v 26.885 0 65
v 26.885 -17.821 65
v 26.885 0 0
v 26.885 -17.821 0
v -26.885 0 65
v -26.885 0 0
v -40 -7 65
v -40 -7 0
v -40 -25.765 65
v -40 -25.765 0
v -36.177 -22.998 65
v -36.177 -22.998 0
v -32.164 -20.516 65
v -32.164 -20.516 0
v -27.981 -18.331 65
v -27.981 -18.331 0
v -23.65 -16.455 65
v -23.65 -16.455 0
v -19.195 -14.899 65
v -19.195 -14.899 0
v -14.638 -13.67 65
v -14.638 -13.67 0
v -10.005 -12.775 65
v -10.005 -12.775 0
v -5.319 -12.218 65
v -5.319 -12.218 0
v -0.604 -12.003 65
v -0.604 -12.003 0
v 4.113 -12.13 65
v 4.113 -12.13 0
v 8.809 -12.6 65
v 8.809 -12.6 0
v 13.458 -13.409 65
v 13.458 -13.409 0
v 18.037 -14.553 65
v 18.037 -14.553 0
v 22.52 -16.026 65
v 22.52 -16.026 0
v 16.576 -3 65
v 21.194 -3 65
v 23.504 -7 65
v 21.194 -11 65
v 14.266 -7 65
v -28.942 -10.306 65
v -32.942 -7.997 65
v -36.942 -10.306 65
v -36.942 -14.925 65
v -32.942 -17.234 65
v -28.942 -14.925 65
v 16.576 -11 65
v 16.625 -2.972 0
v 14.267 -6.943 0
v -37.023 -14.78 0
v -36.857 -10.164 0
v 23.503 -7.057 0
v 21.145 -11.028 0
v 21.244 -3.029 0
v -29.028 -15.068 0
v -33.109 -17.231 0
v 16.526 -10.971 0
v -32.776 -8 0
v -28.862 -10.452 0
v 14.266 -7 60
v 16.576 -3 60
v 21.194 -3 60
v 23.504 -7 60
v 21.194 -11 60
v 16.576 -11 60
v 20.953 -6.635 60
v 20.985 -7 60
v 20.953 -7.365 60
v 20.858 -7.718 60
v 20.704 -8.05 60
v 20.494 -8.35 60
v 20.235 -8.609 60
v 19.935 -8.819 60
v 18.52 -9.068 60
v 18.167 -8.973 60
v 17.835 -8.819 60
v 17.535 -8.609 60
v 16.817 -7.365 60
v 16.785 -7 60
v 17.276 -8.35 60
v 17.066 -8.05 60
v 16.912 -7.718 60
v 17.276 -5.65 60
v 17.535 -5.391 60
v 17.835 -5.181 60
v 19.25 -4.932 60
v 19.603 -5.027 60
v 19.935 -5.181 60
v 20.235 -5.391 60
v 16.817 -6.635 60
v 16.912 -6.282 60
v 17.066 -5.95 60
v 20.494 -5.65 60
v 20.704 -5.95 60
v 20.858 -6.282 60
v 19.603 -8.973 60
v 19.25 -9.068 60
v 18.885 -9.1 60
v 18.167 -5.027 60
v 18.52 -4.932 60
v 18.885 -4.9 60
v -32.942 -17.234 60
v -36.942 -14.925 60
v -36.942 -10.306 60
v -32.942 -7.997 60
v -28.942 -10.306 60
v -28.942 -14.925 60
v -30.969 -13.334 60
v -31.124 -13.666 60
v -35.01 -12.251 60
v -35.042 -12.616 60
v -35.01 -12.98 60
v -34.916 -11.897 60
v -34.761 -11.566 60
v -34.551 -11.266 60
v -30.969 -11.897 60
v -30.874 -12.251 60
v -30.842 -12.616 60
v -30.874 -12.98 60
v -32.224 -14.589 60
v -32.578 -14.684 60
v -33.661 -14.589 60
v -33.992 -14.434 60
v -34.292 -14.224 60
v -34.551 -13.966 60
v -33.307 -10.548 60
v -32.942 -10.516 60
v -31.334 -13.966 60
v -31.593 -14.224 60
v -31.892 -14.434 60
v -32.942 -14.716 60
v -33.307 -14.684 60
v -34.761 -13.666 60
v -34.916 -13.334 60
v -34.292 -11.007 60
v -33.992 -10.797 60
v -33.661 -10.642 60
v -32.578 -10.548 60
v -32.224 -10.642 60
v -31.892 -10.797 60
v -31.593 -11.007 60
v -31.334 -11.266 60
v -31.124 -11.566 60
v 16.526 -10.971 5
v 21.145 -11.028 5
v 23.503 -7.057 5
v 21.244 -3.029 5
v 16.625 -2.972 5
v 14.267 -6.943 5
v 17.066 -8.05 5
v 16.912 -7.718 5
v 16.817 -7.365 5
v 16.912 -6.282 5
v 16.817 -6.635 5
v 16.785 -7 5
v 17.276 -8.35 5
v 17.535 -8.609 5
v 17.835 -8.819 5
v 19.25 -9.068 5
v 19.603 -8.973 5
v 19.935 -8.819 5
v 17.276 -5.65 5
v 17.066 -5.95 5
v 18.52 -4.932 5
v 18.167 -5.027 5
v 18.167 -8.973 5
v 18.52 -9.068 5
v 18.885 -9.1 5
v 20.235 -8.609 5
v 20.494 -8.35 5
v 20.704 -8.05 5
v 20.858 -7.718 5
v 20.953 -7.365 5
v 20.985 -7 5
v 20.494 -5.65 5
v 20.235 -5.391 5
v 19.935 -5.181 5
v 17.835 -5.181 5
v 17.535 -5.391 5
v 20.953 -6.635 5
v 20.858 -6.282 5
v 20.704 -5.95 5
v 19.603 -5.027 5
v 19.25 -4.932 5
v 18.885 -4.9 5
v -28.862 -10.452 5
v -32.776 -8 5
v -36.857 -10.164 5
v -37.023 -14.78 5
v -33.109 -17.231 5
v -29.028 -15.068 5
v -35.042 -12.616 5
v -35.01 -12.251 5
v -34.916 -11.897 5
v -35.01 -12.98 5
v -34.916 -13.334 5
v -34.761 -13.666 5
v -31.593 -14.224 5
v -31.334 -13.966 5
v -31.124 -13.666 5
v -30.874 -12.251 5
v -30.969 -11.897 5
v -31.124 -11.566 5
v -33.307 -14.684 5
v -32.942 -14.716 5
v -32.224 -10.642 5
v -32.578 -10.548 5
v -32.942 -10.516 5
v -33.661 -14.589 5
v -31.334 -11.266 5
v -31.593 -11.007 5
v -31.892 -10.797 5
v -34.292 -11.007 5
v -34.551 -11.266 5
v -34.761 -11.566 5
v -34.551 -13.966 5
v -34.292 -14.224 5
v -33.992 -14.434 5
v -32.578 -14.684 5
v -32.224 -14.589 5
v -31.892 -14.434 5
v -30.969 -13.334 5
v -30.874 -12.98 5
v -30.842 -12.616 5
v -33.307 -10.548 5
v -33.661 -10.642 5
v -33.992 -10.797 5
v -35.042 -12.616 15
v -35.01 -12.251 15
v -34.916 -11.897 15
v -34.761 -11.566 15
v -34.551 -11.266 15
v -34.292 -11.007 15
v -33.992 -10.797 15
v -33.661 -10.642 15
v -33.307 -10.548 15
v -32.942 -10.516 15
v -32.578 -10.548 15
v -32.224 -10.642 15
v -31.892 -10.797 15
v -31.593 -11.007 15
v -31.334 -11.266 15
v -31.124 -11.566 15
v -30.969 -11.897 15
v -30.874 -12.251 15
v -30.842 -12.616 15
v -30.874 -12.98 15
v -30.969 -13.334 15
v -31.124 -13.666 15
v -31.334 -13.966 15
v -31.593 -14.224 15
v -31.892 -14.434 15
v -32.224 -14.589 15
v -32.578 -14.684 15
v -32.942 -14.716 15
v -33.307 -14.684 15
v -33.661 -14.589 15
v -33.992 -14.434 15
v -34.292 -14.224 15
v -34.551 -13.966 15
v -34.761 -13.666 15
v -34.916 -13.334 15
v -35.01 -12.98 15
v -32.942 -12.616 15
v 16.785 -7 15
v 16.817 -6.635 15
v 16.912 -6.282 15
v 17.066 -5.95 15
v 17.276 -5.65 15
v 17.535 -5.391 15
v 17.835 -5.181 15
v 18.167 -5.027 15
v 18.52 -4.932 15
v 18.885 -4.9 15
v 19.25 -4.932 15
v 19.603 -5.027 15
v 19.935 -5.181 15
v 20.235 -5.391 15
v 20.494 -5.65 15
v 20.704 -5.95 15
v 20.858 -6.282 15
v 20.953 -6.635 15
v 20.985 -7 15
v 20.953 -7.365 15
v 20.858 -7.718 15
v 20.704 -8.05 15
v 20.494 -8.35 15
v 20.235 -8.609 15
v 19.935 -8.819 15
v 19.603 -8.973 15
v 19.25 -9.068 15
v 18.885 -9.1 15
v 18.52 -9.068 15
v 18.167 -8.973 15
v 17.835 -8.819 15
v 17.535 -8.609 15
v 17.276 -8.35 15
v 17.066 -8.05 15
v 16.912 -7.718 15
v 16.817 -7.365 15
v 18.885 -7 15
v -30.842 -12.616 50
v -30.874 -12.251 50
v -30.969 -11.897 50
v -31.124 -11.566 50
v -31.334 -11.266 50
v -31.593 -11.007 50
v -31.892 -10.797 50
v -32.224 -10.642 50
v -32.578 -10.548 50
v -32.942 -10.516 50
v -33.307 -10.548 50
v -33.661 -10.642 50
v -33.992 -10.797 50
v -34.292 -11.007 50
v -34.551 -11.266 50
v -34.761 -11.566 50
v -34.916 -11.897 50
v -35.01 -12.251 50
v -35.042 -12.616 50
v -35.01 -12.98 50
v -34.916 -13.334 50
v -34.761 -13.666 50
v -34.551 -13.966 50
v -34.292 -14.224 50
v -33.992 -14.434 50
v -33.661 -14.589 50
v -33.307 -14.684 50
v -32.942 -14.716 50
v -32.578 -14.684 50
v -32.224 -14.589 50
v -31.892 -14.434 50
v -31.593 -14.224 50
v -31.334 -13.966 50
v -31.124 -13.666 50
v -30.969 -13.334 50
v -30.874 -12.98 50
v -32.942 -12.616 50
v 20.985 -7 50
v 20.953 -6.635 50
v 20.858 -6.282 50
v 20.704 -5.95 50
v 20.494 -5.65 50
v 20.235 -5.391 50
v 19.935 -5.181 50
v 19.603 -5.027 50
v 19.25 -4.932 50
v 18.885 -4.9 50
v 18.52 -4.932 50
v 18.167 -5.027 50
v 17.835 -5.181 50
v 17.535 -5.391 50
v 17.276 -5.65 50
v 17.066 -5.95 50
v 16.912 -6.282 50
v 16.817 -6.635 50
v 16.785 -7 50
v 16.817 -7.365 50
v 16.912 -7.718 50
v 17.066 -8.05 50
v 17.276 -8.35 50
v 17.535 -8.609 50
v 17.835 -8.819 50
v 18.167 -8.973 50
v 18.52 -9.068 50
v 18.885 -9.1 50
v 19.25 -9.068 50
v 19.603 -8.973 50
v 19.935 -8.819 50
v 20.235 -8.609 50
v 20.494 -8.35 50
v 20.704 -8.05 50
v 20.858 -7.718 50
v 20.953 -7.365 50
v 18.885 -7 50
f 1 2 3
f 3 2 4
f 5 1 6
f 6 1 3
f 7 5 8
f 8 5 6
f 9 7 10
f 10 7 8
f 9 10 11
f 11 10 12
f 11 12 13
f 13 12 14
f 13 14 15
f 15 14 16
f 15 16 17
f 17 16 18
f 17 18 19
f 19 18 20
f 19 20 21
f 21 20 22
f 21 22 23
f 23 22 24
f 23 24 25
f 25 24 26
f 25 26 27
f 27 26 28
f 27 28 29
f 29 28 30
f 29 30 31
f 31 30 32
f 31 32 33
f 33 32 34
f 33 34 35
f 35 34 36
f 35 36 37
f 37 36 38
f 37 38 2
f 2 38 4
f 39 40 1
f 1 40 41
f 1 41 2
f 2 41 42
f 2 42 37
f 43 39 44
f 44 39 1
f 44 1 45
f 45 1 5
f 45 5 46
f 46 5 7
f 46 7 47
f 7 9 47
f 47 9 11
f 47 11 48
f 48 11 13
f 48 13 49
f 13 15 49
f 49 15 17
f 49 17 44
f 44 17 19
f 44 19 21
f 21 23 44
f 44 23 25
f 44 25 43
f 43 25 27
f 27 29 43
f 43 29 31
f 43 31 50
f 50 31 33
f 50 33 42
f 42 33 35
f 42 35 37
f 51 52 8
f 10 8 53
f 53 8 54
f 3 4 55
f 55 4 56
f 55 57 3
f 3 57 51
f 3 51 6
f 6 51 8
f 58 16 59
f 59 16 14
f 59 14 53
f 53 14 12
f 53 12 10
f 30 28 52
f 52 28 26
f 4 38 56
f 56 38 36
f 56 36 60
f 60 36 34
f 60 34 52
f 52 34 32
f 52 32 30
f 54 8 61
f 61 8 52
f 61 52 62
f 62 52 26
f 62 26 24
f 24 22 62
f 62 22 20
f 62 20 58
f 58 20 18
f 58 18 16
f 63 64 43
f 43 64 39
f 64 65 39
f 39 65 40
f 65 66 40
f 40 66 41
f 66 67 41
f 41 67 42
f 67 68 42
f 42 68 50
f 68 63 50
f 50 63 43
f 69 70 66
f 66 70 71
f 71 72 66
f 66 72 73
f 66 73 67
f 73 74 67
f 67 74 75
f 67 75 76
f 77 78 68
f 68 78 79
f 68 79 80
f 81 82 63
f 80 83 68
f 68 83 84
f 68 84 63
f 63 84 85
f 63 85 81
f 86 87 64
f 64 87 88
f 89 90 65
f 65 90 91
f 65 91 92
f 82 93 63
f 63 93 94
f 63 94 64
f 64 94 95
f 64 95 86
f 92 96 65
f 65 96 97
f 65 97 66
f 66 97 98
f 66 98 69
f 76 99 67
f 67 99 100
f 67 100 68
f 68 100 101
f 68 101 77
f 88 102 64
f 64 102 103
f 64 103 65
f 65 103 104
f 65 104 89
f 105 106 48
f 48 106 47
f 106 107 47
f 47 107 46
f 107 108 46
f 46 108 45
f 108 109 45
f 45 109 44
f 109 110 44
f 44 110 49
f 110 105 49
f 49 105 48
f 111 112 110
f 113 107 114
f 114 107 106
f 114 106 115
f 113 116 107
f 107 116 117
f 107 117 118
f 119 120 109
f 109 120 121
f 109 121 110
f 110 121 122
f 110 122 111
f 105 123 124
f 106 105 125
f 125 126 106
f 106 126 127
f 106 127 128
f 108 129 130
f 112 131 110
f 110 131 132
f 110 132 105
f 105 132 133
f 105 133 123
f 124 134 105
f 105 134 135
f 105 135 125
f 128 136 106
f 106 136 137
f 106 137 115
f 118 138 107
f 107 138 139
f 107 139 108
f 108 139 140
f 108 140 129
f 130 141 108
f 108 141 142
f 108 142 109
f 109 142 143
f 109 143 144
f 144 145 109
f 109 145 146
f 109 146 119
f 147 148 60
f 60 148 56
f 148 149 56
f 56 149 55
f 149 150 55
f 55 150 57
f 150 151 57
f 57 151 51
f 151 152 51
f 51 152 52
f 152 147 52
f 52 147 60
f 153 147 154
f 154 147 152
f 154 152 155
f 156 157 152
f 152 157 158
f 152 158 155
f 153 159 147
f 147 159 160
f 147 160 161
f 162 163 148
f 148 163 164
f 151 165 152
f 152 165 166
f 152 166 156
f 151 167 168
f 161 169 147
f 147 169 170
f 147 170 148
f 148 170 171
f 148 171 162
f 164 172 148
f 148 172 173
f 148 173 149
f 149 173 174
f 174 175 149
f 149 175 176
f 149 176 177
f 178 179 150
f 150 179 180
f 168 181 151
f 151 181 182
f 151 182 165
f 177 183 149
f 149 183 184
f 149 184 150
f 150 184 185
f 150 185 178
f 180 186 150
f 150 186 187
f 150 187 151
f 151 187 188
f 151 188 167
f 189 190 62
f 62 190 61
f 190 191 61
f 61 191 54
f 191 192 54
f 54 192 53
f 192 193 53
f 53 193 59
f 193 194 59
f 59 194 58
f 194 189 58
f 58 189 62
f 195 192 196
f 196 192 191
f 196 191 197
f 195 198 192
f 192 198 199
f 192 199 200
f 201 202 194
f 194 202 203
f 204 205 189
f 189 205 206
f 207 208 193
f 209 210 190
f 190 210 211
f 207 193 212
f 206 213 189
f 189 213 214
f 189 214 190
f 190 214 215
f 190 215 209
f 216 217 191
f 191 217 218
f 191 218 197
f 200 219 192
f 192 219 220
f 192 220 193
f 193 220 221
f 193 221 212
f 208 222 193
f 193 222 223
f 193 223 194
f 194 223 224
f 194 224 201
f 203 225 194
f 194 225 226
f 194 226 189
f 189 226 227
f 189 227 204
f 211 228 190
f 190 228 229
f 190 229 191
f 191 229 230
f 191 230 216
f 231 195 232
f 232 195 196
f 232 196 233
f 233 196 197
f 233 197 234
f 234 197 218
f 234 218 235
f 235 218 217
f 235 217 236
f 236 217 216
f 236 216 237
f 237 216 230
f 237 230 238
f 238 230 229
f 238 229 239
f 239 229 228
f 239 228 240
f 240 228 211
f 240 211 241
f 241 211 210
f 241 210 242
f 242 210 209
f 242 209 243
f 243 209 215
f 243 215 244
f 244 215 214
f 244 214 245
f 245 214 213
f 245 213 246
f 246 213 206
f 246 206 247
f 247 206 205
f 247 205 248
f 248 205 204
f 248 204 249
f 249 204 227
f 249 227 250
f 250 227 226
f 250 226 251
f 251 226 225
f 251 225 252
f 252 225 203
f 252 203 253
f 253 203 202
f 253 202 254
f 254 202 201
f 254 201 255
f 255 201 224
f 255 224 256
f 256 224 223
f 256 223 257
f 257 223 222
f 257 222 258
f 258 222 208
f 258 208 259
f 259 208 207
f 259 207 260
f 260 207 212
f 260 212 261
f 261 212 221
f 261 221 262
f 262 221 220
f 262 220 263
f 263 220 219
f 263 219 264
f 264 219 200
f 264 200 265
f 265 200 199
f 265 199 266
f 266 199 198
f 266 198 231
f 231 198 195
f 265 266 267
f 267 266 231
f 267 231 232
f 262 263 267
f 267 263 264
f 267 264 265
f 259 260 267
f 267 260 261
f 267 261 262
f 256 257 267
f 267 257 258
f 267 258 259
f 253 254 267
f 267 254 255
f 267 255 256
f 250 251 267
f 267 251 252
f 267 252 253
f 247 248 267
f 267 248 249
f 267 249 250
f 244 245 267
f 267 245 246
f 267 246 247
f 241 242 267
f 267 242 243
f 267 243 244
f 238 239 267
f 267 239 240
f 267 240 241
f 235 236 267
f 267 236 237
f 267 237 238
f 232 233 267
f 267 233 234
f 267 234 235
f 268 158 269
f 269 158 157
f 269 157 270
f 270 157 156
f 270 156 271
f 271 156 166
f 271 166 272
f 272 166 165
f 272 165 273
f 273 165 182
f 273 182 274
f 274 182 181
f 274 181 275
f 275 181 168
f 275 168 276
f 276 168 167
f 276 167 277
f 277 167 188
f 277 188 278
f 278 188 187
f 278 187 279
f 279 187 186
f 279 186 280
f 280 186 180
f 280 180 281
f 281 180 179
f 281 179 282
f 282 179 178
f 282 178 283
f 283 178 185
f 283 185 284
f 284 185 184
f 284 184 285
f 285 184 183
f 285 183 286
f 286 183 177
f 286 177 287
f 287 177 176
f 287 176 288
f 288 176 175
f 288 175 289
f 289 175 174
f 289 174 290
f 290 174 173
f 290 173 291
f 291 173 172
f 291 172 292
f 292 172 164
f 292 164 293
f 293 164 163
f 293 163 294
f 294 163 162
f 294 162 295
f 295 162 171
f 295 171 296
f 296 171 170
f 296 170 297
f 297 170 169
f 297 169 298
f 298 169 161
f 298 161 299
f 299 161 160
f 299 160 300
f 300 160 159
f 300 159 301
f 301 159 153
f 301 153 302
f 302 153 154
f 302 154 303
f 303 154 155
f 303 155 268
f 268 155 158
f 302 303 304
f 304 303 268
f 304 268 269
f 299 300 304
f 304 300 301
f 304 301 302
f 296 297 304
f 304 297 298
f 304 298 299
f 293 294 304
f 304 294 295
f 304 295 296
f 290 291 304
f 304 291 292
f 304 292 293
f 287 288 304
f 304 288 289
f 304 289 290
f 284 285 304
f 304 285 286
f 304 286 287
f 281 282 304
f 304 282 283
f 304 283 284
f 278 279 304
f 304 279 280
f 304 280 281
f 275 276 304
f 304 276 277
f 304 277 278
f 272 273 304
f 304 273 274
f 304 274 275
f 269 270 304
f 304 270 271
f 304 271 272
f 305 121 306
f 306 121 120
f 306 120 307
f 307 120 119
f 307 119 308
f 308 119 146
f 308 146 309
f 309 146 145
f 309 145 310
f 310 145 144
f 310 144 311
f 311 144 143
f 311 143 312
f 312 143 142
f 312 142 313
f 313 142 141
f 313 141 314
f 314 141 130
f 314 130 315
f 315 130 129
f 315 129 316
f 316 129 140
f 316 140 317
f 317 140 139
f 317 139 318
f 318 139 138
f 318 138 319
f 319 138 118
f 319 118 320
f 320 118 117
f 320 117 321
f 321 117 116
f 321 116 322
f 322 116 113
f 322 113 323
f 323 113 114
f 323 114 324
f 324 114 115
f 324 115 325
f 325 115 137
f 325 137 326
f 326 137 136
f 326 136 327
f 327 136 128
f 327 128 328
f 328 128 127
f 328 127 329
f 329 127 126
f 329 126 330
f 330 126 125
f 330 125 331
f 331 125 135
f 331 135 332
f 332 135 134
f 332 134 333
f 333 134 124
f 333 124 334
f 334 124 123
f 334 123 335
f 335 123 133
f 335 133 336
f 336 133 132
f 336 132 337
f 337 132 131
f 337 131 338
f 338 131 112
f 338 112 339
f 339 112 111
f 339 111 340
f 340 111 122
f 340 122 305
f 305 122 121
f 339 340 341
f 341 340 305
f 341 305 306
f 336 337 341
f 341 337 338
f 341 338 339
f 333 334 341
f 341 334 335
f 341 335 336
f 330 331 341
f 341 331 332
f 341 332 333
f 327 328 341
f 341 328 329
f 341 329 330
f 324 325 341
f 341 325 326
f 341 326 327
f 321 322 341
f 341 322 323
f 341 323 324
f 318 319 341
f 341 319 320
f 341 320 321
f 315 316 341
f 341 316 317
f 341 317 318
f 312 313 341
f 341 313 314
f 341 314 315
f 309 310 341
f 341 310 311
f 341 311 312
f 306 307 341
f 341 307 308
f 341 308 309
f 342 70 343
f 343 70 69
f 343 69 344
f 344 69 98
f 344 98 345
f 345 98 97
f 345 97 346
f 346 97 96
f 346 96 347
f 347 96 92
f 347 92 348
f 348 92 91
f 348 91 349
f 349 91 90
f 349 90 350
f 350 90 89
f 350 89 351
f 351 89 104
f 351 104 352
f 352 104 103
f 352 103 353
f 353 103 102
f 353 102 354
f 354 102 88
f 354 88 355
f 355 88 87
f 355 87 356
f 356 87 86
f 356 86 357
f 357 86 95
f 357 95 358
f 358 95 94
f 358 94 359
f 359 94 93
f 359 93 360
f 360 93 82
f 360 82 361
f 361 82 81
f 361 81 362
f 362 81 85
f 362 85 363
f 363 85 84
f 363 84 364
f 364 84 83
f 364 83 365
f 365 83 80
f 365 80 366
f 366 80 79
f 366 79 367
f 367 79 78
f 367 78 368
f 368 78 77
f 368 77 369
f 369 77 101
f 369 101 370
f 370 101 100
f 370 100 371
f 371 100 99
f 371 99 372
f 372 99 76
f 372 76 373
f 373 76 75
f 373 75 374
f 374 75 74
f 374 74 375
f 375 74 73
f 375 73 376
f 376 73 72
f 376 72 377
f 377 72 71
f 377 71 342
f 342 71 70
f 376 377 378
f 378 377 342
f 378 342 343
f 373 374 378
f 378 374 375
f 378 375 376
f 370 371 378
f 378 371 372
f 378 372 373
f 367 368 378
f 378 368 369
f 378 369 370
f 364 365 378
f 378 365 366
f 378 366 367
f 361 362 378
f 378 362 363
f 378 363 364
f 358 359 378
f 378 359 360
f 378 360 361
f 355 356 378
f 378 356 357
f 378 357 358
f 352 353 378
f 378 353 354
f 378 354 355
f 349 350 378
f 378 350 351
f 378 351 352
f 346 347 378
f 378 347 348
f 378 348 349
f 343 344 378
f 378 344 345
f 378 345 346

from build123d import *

# Parameters (mm, degrees)
BOSS_EXTRUDE1_DEPTH = 65
CUT_EXTRUDE1_DEPTH  = 5
CUT_EXTRUDE2_DEPTH  = 5
SKETCH4_R           = 2.1
CUT_EXTRUDE3_DEPTH  = 10
SKETCH5_R           = 2.1
CUT_EXTRUDE4_DEPTH  = 10


with BuildPart() as part:
    # Sketch1 → Boss-Extrude1 (new body)
    with BuildSketch(Plane.XY):
        with BuildLine():
            Line((-26.885, 0), (26.885, 0))
            Line((26.885, 0), (26.885, -17.820638944))
            ThreePointArc((26.885, -17.820638944), (-7.666811739, -12.453737538), (-40, -25.76524617))
            Line((-40, -25.76524617), (-40, -7))
            Line((-40, -7), (-26.885, 0))
        make_face()
    extrude(amount=BOSS_EXTRUDE1_DEPTH)

    # Sketch2 → Cut-Extrude1 (cut)
    with BuildSketch(Plane.XY.offset(65)):
        Polygon((-32.94236854, -17.234485077), (-28.94236854, -14.925084), (-28.94236854, -10.306281847), (-32.94236854, -7.99688077), (-36.94236854, -10.306281847), (-36.94236854, -14.925084), align=None)
        Polygon((14.266197846, -7), (16.575598923, -11), (21.194401077, -11), (23.503802154, -7), (21.194401077, -3), (16.575598923, -3), align=None)
    extrude(amount=-CUT_EXTRUDE1_DEPTH, mode=Mode.SUBTRACT)

    # Sketch3 → Cut-Extrude2 (cut)
    with BuildSketch(Plane(origin=(0, 0, 0), x_dir=(-1, 0, 0), z_dir=(0, 0, -1))):
        Polygon((28.861855536, -10.451717361), (29.028062888, -15.067528064), (33.108575892, -17.231493627), (37.022881544, -14.779648487), (36.856674193, -10.163837783), (32.776161189, -7.99987222), align=None)
        Polygon((-16.5261006, -10.971010823), (-14.266554049, -6.942638606), (-16.625453449, -2.971627783), (-21.2438994, -3.028989177), (-23.503445951, -7.057361394), (-21.144546551, -11.028372217), align=None)
    extrude(amount=-CUT_EXTRUDE2_DEPTH, mode=Mode.SUBTRACT)

    # Sketch4 → Cut-Extrude3 (cut)
    with BuildSketch(Plane(origin=(0, 0, 5), x_dir=(-1, 0, 0), z_dir=(0, 0, -1))):
        with Locations((32.94236854, -12.615682924)):
            Circle(SKETCH4_R)
        with Locations((-18.885, -7)):
            Circle(SKETCH4_R)
    extrude(amount=-CUT_EXTRUDE3_DEPTH, mode=Mode.SUBTRACT)

    # Sketch5 → Cut-Extrude4 (cut)
    with BuildSketch(Plane.XY.offset(60)):
        with Locations((-32.94236854, -12.615682924)):
            Circle(SKETCH5_R)
        with Locations((18.885, -7)):
            Circle(SKETCH5_R)
    extrude(amount=-CUT_EXTRUDE4_DEPTH, mode=Mode.SUBTRACT)


solid = part.part
